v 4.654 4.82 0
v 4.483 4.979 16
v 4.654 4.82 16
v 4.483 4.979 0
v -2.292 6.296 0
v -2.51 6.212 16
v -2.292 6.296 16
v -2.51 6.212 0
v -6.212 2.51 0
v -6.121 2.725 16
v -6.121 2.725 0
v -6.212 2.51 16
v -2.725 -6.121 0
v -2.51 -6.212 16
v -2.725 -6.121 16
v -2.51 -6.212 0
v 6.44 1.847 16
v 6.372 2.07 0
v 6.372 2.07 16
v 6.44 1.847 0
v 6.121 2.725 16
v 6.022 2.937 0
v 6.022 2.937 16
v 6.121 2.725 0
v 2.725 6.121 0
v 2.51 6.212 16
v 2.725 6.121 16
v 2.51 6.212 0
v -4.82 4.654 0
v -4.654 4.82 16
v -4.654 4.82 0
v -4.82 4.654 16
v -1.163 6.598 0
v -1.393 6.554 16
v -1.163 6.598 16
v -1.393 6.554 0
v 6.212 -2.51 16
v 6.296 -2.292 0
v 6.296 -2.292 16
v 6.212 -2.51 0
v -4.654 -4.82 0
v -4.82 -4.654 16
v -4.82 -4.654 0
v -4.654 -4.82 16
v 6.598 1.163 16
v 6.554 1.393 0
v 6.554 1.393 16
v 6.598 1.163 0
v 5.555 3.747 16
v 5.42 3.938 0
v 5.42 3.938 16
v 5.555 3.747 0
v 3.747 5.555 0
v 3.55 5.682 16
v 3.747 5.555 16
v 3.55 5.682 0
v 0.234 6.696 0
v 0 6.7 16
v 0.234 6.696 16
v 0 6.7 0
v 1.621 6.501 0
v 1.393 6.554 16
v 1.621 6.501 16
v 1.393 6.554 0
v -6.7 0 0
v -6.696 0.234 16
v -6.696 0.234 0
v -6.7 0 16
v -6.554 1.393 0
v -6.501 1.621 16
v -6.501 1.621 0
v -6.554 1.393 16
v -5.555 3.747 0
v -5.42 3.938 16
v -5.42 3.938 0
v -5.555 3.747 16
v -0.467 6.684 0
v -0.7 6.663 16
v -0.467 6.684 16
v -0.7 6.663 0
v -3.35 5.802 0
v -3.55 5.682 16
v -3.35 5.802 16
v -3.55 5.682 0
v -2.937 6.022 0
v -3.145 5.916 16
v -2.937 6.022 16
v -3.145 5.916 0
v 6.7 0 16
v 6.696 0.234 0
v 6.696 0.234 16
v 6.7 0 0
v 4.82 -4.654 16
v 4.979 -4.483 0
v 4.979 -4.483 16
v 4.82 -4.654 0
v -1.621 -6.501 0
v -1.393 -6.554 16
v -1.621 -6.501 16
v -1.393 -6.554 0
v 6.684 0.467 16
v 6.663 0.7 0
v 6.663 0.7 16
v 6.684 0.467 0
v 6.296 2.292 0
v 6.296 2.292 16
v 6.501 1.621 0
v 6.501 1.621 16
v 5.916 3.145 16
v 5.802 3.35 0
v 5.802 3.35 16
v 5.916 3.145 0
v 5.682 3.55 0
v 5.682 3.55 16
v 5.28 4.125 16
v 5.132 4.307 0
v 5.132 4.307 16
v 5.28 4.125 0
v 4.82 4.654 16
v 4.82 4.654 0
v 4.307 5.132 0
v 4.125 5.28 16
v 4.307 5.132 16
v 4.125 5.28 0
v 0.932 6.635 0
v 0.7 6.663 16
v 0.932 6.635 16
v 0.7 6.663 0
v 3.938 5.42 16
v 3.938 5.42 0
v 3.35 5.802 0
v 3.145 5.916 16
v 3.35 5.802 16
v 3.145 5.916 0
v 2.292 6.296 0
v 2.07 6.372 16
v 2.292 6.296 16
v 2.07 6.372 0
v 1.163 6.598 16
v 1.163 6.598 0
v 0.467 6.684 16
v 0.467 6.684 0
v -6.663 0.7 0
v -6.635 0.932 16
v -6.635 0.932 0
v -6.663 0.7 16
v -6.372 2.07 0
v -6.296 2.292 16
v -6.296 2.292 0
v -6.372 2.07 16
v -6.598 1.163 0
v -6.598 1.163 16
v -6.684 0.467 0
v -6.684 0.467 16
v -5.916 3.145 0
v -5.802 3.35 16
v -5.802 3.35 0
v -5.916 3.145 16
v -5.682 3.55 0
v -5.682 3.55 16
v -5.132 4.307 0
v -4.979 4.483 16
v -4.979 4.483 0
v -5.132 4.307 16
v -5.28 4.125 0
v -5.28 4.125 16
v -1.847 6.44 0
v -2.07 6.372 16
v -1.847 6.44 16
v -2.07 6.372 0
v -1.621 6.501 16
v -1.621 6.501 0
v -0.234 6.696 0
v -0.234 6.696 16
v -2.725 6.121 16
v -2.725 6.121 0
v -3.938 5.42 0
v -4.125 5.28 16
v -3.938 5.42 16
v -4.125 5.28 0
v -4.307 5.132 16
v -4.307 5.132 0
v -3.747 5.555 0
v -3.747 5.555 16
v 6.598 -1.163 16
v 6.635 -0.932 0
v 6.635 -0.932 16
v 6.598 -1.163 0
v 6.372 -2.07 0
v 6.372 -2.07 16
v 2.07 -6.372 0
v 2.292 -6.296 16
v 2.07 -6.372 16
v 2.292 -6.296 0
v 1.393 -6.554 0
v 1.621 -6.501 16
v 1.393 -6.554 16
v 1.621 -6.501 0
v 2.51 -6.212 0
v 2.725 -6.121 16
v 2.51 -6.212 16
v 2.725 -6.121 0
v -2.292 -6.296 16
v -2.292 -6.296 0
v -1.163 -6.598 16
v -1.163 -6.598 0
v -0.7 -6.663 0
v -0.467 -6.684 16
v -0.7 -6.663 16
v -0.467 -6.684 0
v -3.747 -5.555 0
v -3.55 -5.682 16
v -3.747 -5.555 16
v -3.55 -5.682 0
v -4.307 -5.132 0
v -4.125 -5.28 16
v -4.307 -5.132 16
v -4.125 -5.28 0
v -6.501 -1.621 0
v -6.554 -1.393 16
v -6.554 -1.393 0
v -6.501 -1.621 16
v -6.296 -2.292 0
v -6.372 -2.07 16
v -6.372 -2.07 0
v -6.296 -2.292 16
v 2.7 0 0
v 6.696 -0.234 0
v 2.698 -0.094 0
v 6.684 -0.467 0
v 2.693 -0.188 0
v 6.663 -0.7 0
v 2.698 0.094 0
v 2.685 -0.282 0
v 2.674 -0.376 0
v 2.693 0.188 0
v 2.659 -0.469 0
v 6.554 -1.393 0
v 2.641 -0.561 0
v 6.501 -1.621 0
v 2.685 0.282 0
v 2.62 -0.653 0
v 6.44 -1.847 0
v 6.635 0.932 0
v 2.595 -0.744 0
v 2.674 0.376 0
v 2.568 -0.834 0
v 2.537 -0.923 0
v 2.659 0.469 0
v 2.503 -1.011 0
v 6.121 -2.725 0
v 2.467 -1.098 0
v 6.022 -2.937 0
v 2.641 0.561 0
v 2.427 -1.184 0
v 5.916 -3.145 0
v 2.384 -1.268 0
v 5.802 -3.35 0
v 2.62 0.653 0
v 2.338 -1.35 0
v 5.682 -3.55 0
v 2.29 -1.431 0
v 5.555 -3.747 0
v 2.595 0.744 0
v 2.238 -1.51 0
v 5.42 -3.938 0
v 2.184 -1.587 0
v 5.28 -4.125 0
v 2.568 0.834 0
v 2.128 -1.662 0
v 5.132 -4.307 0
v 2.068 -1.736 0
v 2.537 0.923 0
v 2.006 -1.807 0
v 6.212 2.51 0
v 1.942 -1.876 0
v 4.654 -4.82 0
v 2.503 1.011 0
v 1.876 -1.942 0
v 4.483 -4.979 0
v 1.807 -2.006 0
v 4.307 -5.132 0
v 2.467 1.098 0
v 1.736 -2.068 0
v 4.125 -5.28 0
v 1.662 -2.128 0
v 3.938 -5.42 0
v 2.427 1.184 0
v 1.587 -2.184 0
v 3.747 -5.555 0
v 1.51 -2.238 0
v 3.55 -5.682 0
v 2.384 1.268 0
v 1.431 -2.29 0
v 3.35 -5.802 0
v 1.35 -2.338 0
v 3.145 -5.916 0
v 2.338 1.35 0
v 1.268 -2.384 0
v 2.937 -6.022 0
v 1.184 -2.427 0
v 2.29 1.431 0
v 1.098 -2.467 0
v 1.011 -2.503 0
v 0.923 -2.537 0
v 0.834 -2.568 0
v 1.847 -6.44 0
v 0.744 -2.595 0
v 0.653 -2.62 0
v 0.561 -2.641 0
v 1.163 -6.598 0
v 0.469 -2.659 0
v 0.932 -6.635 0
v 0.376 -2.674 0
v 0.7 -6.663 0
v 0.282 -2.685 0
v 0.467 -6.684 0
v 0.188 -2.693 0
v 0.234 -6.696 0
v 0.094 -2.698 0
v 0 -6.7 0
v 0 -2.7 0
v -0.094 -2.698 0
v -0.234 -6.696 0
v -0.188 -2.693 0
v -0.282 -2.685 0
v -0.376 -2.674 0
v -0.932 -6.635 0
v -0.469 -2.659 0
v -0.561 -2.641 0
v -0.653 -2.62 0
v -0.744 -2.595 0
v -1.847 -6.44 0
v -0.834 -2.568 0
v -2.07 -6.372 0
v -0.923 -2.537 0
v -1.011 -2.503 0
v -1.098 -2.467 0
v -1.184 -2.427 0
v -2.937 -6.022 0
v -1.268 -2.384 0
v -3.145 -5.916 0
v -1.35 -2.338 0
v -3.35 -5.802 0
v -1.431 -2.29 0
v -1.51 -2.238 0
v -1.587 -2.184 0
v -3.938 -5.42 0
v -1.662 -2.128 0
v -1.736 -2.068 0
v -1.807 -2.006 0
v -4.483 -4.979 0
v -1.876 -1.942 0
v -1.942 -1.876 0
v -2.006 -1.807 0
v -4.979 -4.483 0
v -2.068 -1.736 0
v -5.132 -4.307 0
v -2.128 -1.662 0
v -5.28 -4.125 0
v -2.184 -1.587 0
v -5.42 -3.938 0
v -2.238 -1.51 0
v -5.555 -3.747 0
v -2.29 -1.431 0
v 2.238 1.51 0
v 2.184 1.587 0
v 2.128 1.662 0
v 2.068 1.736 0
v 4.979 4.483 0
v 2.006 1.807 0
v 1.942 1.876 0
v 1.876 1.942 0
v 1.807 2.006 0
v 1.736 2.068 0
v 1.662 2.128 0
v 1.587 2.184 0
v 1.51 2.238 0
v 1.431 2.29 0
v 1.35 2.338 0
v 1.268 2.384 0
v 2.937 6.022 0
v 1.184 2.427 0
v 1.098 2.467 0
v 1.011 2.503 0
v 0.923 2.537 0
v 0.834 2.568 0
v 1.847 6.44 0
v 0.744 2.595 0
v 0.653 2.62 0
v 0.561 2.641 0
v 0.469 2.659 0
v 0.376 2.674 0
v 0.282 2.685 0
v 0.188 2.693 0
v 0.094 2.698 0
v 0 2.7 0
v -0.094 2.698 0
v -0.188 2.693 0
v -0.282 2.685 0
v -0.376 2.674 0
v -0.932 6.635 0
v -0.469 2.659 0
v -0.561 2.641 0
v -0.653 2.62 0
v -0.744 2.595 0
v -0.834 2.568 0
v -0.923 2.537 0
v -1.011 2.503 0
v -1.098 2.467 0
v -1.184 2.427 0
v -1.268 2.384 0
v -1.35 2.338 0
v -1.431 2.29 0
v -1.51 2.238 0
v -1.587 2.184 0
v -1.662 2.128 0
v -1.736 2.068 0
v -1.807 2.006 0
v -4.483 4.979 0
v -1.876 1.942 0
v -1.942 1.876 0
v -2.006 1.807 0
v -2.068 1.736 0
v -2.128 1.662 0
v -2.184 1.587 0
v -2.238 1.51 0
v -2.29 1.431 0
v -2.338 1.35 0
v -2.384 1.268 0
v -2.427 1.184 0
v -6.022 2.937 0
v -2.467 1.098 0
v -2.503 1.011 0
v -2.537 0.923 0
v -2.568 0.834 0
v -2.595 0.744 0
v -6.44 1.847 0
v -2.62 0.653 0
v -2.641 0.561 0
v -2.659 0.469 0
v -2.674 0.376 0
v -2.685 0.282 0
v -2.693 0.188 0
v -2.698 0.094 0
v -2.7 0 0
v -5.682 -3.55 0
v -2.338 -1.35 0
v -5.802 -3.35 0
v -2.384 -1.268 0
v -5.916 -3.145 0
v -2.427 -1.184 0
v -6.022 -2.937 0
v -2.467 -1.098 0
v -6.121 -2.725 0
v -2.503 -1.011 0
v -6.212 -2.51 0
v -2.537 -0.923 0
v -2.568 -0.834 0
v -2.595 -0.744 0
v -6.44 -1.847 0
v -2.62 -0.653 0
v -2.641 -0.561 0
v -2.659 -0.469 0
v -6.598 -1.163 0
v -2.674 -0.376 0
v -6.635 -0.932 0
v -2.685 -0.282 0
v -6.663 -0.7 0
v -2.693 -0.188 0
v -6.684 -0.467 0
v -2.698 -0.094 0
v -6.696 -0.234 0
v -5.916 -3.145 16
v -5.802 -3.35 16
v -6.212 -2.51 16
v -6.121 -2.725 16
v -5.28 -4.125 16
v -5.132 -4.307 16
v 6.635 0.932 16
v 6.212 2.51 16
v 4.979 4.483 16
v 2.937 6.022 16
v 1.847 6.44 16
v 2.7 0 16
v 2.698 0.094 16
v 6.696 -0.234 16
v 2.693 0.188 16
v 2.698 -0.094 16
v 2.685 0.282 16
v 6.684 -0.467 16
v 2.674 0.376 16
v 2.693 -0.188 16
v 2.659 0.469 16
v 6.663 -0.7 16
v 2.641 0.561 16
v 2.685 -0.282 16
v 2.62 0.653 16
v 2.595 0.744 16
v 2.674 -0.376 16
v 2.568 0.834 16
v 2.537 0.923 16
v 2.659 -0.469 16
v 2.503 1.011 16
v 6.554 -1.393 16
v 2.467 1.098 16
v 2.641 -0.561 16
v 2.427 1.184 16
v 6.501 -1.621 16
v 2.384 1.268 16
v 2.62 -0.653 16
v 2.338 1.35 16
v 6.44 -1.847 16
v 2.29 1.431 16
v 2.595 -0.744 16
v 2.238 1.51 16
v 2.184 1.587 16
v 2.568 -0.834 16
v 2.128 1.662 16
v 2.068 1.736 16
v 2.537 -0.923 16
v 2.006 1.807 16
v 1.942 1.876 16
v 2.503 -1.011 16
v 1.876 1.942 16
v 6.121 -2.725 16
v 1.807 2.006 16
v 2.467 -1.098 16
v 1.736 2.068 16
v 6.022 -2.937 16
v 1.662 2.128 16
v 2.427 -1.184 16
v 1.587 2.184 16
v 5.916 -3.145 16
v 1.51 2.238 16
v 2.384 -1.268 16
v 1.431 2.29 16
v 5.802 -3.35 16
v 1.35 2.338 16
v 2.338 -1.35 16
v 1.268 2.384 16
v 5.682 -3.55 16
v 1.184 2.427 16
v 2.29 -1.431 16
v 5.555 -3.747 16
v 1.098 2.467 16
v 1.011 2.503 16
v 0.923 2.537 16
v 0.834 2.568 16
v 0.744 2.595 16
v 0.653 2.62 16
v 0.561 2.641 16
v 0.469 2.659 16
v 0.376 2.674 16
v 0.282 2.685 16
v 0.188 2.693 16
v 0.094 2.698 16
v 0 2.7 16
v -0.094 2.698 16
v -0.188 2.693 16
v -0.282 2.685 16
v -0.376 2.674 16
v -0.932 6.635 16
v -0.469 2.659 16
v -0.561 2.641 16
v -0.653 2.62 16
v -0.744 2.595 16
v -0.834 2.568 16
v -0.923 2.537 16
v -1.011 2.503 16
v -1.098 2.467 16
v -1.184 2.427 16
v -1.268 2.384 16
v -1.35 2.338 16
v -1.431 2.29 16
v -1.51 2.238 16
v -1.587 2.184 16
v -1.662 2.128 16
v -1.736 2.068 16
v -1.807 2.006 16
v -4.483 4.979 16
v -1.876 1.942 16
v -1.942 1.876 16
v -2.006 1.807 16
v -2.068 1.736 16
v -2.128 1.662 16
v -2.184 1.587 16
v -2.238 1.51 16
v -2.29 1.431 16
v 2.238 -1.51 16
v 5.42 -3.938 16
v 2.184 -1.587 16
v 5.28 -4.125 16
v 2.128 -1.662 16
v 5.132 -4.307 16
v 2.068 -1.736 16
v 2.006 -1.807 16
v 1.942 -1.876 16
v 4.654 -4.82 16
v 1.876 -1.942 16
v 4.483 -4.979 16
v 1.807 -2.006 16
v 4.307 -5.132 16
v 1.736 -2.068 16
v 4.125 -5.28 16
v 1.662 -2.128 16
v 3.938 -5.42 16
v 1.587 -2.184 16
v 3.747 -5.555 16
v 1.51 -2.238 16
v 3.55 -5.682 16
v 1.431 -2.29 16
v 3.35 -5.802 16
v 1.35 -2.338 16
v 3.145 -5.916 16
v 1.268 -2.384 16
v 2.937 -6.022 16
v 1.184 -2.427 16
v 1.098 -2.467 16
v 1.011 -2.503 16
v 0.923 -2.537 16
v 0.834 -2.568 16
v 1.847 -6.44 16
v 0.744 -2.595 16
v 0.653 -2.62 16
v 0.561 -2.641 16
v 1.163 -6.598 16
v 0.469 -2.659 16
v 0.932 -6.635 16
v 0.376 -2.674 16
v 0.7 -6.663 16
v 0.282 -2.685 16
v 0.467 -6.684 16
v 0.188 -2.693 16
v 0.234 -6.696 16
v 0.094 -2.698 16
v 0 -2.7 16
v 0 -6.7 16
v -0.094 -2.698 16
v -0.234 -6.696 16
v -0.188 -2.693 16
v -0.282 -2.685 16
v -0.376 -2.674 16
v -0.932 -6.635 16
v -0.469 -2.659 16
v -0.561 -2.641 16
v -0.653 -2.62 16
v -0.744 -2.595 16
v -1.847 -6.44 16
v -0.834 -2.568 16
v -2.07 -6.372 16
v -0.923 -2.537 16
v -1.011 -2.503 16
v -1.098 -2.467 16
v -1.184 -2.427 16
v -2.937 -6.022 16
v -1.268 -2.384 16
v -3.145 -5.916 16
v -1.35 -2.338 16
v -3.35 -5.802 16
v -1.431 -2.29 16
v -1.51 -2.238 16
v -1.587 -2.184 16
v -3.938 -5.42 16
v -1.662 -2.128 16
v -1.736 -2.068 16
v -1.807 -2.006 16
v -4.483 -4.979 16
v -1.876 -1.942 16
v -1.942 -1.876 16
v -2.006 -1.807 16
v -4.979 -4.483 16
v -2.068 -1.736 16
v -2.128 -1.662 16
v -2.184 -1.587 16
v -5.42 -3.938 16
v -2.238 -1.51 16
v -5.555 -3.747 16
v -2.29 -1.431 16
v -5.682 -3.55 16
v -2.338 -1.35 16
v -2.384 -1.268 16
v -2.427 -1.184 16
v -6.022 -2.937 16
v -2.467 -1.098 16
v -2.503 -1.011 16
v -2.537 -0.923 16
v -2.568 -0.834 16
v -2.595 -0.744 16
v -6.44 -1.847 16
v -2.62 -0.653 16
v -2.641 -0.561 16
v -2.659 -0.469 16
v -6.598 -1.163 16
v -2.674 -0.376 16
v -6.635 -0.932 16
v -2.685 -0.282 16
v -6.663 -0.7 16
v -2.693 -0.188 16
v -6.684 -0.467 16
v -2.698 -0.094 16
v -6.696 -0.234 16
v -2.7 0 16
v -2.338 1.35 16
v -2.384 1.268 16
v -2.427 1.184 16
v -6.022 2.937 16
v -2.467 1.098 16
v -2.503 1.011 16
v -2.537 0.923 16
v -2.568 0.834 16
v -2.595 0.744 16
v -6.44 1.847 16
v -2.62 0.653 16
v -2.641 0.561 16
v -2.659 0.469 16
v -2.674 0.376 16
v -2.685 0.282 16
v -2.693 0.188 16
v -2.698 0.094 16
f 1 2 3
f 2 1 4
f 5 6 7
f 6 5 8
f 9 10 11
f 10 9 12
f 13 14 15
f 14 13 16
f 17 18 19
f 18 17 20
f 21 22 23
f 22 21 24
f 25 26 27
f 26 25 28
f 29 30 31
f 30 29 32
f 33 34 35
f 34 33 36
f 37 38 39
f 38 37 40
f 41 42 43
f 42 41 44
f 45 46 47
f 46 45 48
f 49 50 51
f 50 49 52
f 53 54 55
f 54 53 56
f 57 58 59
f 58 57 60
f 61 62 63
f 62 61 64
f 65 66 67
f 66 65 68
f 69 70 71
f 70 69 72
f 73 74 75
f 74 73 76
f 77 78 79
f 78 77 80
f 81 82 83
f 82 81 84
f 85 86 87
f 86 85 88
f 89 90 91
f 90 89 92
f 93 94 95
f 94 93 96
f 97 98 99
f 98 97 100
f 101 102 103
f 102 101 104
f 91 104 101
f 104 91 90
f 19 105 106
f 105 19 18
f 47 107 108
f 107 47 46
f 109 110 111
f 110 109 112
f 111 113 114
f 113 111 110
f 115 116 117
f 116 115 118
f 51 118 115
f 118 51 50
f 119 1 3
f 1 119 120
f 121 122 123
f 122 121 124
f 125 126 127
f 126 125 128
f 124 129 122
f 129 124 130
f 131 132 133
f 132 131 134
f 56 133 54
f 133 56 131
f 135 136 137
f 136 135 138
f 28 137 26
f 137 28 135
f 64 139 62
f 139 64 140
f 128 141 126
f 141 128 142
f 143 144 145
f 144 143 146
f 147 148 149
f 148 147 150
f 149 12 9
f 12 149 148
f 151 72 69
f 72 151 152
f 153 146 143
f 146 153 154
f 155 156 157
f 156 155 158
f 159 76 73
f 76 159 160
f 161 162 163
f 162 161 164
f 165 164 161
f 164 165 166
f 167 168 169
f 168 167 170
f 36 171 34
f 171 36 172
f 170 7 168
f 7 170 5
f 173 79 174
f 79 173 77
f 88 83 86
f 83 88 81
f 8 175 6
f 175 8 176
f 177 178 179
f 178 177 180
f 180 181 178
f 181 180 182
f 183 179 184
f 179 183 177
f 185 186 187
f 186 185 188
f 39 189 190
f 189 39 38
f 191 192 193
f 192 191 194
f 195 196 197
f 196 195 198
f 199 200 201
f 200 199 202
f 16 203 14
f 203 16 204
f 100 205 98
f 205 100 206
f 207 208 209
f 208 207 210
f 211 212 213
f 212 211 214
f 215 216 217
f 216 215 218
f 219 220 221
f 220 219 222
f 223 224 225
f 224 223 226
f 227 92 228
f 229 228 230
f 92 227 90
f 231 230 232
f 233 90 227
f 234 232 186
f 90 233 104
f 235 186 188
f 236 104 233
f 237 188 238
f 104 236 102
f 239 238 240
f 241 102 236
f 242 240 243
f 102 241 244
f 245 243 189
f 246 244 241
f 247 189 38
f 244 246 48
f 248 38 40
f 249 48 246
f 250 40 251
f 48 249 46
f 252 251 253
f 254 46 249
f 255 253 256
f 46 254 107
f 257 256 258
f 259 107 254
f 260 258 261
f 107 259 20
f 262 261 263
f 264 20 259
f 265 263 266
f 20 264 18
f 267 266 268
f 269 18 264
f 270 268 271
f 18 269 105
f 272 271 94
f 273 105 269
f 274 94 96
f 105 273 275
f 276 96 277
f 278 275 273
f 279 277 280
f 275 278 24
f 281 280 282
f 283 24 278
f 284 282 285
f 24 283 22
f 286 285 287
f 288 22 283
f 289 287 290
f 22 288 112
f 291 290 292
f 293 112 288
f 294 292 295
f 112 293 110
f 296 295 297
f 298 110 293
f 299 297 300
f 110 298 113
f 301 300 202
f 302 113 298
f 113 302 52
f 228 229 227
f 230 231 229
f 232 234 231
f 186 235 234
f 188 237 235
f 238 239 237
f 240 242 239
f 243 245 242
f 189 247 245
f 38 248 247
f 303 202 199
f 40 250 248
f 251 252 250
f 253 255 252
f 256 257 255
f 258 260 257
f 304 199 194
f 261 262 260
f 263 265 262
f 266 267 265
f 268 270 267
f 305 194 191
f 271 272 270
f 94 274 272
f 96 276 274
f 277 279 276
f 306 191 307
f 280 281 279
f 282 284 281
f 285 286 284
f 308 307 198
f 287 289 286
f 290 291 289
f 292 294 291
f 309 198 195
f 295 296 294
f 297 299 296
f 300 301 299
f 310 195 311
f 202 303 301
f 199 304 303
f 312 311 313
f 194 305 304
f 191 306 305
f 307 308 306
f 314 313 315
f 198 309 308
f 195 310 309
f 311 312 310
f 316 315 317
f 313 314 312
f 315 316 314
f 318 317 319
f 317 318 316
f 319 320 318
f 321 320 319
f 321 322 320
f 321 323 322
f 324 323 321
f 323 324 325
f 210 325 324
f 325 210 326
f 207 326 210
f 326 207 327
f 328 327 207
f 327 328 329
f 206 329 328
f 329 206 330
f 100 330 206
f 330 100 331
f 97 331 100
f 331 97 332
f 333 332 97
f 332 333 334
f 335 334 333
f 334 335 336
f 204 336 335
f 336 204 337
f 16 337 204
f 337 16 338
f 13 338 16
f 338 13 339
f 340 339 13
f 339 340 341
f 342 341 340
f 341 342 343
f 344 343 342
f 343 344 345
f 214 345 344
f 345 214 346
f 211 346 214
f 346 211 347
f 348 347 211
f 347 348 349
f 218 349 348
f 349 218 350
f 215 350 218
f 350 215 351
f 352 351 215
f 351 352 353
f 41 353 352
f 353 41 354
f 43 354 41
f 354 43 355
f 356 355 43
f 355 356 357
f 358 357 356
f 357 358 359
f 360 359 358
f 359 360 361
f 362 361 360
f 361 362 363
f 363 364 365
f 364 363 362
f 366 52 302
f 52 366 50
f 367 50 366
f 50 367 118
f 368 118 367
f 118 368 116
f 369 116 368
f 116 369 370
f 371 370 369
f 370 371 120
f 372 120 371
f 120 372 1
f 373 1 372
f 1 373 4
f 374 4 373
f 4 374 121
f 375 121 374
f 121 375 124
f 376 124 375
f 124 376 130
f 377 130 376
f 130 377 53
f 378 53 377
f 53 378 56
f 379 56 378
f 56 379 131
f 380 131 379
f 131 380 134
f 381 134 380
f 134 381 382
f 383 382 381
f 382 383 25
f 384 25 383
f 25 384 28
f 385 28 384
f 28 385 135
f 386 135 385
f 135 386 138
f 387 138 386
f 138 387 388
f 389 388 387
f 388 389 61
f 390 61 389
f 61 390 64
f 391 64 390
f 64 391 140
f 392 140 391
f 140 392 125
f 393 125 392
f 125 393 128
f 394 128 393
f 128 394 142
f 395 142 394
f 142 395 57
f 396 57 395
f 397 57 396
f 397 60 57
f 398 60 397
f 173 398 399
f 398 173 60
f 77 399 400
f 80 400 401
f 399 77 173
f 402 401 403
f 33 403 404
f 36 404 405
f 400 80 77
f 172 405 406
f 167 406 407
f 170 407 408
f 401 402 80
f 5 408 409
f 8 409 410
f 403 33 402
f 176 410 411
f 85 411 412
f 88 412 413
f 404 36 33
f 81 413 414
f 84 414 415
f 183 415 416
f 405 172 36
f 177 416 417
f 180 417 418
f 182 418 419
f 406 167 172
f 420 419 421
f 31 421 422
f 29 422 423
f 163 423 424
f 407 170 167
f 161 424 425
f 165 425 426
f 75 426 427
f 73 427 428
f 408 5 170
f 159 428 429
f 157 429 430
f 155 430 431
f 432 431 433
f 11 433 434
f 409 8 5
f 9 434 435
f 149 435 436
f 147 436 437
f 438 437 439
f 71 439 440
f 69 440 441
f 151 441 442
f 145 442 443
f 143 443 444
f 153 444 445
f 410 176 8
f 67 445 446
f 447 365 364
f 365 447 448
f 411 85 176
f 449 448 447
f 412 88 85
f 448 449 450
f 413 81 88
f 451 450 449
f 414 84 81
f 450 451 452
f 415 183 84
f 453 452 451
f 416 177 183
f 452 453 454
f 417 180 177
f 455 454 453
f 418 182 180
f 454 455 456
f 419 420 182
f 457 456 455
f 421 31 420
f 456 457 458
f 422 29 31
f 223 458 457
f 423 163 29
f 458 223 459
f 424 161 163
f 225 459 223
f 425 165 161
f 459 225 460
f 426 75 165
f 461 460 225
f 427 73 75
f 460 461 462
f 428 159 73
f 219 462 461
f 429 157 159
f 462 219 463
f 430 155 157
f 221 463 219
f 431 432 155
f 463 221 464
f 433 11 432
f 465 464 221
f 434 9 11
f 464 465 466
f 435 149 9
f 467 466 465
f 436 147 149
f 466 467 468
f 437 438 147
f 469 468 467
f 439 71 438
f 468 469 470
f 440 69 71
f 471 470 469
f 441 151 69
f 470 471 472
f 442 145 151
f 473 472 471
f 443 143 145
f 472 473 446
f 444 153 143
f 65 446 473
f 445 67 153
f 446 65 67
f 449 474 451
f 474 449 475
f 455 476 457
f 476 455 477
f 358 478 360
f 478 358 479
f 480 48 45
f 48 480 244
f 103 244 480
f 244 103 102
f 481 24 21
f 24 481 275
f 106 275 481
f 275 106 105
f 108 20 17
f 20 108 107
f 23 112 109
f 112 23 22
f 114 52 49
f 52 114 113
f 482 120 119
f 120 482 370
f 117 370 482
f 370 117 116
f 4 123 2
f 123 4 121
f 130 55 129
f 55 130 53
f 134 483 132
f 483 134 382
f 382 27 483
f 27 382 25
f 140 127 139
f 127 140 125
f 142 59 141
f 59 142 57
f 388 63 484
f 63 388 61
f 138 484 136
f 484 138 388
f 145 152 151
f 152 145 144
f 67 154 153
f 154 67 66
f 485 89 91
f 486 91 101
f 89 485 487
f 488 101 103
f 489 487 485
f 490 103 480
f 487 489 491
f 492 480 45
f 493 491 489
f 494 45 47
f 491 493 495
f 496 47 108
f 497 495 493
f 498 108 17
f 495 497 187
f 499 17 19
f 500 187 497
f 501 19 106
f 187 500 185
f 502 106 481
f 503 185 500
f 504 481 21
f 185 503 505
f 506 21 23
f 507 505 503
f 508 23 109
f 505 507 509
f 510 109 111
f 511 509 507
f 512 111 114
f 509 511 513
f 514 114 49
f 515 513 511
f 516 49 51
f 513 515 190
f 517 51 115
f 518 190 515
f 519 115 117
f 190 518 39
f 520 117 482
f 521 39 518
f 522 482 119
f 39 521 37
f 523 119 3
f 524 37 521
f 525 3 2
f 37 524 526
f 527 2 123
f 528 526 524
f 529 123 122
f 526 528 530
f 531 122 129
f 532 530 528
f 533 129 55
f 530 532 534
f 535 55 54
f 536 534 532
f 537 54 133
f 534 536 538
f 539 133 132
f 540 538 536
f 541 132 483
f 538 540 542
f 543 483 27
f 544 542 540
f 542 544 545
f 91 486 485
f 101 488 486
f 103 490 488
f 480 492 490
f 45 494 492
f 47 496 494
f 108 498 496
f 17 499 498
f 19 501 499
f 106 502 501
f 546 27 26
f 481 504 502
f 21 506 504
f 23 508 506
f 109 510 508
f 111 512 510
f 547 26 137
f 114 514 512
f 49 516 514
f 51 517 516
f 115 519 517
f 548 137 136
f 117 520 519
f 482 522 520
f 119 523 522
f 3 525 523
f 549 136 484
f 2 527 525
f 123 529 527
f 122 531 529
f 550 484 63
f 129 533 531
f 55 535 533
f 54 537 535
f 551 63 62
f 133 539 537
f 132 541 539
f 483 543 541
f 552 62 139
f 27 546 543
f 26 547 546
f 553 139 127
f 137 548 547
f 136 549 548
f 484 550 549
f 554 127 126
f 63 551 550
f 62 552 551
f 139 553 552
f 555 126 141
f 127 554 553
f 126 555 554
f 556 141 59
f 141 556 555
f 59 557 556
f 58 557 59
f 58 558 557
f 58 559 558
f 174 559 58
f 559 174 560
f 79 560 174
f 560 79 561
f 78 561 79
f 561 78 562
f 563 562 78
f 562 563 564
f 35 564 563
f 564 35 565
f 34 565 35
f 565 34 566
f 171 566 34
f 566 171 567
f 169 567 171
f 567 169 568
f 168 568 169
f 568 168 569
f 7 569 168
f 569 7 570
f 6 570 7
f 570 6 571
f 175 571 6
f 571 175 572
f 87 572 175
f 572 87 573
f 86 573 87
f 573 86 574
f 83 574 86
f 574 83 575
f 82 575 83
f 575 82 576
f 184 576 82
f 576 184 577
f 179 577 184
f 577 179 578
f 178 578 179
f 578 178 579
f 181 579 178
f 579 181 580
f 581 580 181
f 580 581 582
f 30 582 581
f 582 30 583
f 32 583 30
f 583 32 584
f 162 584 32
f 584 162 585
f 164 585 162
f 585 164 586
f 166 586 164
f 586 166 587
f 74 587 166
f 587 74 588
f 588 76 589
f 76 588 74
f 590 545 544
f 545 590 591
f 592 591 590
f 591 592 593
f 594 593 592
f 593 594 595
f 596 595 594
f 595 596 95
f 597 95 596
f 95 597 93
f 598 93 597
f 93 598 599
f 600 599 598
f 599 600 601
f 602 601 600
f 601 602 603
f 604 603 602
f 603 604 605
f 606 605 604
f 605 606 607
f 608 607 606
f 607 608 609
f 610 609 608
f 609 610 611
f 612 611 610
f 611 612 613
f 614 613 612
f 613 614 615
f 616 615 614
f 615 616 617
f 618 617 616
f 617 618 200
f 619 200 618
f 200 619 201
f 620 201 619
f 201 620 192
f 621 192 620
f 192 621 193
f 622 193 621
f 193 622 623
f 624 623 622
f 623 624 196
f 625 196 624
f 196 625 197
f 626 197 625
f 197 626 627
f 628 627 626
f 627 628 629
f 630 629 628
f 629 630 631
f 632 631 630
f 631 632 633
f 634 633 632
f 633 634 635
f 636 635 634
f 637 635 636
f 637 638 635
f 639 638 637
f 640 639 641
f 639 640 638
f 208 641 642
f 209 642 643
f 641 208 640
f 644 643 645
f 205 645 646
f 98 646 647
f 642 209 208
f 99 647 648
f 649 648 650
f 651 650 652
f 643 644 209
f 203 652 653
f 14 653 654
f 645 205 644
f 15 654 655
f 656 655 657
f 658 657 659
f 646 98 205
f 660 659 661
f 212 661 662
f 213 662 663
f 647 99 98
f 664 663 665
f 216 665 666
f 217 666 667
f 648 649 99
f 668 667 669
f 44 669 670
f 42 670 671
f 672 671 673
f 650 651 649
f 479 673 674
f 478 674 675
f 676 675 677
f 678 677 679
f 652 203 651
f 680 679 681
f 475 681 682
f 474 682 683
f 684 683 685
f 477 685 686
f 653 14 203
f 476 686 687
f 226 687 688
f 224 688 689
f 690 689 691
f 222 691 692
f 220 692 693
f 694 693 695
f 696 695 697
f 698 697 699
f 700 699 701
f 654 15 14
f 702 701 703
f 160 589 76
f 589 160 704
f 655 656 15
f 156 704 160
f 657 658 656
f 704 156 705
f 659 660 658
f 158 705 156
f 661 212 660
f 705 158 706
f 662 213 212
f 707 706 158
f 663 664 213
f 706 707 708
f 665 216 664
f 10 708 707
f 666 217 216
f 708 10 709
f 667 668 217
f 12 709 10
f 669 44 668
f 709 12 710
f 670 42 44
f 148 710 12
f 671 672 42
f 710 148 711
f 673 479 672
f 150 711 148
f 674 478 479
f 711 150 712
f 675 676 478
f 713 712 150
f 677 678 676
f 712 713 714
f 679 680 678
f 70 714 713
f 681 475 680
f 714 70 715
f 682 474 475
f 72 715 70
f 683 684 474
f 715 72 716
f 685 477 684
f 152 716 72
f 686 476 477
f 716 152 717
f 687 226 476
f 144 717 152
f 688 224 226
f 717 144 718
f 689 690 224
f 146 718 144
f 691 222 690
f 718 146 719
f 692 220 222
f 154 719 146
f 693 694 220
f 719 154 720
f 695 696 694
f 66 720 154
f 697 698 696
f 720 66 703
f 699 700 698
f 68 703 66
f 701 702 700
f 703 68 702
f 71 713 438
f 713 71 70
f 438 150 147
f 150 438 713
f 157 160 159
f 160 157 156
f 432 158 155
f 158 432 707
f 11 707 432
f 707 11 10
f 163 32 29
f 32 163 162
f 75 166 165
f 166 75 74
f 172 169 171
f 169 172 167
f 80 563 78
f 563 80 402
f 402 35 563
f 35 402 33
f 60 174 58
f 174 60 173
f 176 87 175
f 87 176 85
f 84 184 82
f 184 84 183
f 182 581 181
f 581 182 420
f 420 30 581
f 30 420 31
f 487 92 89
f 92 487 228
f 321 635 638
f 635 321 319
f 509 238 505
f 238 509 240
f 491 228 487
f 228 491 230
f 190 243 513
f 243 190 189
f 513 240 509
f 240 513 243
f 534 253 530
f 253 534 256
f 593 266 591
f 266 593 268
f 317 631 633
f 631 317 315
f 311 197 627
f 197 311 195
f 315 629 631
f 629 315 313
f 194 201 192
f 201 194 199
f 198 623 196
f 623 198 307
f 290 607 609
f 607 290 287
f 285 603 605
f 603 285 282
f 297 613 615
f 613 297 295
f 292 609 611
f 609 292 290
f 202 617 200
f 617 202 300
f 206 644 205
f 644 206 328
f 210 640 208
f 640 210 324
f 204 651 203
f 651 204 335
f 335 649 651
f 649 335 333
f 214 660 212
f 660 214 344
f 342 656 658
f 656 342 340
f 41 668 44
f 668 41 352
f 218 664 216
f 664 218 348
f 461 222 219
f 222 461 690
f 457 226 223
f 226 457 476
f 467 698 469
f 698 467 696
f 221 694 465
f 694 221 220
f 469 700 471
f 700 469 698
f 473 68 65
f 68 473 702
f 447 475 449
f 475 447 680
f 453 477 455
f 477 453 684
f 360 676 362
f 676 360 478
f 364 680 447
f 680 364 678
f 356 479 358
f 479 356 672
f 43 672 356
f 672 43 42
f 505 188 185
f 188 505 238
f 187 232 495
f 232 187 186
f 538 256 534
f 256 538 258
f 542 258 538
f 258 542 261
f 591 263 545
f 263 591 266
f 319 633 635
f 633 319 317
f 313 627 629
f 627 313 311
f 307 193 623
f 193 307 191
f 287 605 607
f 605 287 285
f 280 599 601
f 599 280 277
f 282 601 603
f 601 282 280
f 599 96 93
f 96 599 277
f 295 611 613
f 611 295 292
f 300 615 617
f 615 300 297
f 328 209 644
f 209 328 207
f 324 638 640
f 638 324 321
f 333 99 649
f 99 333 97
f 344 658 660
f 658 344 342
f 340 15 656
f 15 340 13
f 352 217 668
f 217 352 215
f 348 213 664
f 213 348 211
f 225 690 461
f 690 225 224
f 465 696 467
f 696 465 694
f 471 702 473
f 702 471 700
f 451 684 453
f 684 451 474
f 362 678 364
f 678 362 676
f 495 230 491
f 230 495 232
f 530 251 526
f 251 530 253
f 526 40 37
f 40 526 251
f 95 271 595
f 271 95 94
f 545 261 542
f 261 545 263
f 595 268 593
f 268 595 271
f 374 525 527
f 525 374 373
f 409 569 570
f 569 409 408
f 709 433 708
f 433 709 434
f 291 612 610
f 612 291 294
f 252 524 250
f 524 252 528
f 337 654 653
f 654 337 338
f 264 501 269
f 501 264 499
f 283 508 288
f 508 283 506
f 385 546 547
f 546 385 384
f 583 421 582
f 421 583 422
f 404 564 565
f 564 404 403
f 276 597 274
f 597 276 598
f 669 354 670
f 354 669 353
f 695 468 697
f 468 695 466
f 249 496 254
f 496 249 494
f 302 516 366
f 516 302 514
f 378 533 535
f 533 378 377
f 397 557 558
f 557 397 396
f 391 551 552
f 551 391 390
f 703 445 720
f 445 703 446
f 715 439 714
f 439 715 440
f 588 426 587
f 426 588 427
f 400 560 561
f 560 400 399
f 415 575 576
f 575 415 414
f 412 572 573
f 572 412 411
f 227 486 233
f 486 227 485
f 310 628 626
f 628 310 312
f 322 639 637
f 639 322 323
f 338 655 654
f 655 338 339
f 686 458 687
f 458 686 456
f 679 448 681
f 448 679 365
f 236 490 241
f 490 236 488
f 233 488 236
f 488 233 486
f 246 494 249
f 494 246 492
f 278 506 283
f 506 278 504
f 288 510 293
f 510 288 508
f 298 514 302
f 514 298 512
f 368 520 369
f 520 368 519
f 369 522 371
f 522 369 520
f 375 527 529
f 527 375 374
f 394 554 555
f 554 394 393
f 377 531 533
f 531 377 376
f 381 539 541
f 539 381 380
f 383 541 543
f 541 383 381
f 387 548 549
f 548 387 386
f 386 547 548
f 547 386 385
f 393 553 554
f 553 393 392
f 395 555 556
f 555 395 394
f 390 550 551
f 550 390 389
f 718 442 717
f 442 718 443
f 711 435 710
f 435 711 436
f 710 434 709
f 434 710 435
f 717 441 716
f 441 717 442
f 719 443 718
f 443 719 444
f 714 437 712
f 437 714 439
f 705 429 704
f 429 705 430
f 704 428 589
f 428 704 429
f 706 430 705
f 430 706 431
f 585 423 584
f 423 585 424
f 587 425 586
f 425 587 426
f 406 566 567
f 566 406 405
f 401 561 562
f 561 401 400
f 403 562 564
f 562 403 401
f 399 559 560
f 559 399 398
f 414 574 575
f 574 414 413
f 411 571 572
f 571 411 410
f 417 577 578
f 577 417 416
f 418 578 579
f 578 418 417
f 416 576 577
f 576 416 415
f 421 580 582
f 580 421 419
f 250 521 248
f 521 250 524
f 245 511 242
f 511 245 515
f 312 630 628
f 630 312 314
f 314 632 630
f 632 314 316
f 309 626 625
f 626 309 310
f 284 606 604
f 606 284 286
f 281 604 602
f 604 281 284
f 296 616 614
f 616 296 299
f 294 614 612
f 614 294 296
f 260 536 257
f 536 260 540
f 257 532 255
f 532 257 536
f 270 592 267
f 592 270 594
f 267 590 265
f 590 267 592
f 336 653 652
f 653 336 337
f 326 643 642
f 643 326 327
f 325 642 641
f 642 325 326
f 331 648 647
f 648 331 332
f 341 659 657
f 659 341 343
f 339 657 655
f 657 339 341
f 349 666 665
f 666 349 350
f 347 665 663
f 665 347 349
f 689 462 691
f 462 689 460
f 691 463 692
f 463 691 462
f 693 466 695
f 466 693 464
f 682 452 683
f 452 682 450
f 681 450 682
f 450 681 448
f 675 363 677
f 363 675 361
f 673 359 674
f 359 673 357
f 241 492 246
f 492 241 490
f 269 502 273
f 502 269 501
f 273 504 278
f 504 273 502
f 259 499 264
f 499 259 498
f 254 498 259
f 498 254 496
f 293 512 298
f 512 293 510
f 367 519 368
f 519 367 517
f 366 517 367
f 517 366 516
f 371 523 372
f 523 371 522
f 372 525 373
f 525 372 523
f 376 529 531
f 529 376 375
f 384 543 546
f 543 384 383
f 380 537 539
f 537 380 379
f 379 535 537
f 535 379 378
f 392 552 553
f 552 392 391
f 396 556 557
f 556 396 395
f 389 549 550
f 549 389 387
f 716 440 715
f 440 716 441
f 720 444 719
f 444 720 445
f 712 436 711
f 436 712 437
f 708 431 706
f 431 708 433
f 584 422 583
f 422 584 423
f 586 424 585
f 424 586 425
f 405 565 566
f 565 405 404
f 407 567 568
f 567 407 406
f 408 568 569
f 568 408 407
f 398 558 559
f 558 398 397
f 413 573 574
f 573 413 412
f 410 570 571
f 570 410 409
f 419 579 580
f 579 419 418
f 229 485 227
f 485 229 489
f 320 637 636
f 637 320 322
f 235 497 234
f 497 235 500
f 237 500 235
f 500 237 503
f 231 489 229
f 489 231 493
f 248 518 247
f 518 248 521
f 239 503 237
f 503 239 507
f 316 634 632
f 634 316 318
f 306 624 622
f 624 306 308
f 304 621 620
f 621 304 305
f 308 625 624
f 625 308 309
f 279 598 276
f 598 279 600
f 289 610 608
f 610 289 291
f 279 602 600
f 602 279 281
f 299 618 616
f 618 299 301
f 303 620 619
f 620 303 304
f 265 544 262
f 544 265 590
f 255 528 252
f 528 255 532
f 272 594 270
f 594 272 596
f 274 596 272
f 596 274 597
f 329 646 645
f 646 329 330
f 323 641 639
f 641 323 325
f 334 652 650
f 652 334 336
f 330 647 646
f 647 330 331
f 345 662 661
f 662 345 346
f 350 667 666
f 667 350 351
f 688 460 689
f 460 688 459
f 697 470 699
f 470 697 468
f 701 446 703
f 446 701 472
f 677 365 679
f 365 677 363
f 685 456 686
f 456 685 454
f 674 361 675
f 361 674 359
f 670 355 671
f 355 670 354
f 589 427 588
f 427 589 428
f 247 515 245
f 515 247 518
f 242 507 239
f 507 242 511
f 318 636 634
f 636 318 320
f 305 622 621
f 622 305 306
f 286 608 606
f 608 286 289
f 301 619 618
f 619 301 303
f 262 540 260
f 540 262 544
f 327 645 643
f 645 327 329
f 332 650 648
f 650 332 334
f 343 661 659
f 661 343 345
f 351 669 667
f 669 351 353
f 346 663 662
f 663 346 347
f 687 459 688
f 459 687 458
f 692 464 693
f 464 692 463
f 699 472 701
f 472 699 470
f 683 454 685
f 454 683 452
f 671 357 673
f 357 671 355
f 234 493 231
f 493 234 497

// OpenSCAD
// =============================================================================
// Standoff Tube
// =============================================================================
// A simple cylindrical standoff / spacer tube for FDM printing.
// =============================================================================

// ---------------------------------------------------------------------------
// 1. Constants & Parameters
// ---------------------------------------------------------------------------

inner_diameter = 5.4;   // mm – bore diameter
wall_thickness = 4;     // mm – radial wall thickness
length         = 16;    // mm – total tube length (Z axis)

// Resolution
$fn = 180;

// ---------------------------------------------------------------------------
// 2. Derived Dimensions
// ---------------------------------------------------------------------------

outer_diameter = inner_diameter + 2 * wall_thickness;

// ---------------------------------------------------------------------------
// 3. Assembly
// ---------------------------------------------------------------------------

difference() {
    cylinder(d = outer_diameter, h = length);
    translate([0, 0, -0.01])
        cylinder(d = inner_diameter, h = length + 0.02);
}
